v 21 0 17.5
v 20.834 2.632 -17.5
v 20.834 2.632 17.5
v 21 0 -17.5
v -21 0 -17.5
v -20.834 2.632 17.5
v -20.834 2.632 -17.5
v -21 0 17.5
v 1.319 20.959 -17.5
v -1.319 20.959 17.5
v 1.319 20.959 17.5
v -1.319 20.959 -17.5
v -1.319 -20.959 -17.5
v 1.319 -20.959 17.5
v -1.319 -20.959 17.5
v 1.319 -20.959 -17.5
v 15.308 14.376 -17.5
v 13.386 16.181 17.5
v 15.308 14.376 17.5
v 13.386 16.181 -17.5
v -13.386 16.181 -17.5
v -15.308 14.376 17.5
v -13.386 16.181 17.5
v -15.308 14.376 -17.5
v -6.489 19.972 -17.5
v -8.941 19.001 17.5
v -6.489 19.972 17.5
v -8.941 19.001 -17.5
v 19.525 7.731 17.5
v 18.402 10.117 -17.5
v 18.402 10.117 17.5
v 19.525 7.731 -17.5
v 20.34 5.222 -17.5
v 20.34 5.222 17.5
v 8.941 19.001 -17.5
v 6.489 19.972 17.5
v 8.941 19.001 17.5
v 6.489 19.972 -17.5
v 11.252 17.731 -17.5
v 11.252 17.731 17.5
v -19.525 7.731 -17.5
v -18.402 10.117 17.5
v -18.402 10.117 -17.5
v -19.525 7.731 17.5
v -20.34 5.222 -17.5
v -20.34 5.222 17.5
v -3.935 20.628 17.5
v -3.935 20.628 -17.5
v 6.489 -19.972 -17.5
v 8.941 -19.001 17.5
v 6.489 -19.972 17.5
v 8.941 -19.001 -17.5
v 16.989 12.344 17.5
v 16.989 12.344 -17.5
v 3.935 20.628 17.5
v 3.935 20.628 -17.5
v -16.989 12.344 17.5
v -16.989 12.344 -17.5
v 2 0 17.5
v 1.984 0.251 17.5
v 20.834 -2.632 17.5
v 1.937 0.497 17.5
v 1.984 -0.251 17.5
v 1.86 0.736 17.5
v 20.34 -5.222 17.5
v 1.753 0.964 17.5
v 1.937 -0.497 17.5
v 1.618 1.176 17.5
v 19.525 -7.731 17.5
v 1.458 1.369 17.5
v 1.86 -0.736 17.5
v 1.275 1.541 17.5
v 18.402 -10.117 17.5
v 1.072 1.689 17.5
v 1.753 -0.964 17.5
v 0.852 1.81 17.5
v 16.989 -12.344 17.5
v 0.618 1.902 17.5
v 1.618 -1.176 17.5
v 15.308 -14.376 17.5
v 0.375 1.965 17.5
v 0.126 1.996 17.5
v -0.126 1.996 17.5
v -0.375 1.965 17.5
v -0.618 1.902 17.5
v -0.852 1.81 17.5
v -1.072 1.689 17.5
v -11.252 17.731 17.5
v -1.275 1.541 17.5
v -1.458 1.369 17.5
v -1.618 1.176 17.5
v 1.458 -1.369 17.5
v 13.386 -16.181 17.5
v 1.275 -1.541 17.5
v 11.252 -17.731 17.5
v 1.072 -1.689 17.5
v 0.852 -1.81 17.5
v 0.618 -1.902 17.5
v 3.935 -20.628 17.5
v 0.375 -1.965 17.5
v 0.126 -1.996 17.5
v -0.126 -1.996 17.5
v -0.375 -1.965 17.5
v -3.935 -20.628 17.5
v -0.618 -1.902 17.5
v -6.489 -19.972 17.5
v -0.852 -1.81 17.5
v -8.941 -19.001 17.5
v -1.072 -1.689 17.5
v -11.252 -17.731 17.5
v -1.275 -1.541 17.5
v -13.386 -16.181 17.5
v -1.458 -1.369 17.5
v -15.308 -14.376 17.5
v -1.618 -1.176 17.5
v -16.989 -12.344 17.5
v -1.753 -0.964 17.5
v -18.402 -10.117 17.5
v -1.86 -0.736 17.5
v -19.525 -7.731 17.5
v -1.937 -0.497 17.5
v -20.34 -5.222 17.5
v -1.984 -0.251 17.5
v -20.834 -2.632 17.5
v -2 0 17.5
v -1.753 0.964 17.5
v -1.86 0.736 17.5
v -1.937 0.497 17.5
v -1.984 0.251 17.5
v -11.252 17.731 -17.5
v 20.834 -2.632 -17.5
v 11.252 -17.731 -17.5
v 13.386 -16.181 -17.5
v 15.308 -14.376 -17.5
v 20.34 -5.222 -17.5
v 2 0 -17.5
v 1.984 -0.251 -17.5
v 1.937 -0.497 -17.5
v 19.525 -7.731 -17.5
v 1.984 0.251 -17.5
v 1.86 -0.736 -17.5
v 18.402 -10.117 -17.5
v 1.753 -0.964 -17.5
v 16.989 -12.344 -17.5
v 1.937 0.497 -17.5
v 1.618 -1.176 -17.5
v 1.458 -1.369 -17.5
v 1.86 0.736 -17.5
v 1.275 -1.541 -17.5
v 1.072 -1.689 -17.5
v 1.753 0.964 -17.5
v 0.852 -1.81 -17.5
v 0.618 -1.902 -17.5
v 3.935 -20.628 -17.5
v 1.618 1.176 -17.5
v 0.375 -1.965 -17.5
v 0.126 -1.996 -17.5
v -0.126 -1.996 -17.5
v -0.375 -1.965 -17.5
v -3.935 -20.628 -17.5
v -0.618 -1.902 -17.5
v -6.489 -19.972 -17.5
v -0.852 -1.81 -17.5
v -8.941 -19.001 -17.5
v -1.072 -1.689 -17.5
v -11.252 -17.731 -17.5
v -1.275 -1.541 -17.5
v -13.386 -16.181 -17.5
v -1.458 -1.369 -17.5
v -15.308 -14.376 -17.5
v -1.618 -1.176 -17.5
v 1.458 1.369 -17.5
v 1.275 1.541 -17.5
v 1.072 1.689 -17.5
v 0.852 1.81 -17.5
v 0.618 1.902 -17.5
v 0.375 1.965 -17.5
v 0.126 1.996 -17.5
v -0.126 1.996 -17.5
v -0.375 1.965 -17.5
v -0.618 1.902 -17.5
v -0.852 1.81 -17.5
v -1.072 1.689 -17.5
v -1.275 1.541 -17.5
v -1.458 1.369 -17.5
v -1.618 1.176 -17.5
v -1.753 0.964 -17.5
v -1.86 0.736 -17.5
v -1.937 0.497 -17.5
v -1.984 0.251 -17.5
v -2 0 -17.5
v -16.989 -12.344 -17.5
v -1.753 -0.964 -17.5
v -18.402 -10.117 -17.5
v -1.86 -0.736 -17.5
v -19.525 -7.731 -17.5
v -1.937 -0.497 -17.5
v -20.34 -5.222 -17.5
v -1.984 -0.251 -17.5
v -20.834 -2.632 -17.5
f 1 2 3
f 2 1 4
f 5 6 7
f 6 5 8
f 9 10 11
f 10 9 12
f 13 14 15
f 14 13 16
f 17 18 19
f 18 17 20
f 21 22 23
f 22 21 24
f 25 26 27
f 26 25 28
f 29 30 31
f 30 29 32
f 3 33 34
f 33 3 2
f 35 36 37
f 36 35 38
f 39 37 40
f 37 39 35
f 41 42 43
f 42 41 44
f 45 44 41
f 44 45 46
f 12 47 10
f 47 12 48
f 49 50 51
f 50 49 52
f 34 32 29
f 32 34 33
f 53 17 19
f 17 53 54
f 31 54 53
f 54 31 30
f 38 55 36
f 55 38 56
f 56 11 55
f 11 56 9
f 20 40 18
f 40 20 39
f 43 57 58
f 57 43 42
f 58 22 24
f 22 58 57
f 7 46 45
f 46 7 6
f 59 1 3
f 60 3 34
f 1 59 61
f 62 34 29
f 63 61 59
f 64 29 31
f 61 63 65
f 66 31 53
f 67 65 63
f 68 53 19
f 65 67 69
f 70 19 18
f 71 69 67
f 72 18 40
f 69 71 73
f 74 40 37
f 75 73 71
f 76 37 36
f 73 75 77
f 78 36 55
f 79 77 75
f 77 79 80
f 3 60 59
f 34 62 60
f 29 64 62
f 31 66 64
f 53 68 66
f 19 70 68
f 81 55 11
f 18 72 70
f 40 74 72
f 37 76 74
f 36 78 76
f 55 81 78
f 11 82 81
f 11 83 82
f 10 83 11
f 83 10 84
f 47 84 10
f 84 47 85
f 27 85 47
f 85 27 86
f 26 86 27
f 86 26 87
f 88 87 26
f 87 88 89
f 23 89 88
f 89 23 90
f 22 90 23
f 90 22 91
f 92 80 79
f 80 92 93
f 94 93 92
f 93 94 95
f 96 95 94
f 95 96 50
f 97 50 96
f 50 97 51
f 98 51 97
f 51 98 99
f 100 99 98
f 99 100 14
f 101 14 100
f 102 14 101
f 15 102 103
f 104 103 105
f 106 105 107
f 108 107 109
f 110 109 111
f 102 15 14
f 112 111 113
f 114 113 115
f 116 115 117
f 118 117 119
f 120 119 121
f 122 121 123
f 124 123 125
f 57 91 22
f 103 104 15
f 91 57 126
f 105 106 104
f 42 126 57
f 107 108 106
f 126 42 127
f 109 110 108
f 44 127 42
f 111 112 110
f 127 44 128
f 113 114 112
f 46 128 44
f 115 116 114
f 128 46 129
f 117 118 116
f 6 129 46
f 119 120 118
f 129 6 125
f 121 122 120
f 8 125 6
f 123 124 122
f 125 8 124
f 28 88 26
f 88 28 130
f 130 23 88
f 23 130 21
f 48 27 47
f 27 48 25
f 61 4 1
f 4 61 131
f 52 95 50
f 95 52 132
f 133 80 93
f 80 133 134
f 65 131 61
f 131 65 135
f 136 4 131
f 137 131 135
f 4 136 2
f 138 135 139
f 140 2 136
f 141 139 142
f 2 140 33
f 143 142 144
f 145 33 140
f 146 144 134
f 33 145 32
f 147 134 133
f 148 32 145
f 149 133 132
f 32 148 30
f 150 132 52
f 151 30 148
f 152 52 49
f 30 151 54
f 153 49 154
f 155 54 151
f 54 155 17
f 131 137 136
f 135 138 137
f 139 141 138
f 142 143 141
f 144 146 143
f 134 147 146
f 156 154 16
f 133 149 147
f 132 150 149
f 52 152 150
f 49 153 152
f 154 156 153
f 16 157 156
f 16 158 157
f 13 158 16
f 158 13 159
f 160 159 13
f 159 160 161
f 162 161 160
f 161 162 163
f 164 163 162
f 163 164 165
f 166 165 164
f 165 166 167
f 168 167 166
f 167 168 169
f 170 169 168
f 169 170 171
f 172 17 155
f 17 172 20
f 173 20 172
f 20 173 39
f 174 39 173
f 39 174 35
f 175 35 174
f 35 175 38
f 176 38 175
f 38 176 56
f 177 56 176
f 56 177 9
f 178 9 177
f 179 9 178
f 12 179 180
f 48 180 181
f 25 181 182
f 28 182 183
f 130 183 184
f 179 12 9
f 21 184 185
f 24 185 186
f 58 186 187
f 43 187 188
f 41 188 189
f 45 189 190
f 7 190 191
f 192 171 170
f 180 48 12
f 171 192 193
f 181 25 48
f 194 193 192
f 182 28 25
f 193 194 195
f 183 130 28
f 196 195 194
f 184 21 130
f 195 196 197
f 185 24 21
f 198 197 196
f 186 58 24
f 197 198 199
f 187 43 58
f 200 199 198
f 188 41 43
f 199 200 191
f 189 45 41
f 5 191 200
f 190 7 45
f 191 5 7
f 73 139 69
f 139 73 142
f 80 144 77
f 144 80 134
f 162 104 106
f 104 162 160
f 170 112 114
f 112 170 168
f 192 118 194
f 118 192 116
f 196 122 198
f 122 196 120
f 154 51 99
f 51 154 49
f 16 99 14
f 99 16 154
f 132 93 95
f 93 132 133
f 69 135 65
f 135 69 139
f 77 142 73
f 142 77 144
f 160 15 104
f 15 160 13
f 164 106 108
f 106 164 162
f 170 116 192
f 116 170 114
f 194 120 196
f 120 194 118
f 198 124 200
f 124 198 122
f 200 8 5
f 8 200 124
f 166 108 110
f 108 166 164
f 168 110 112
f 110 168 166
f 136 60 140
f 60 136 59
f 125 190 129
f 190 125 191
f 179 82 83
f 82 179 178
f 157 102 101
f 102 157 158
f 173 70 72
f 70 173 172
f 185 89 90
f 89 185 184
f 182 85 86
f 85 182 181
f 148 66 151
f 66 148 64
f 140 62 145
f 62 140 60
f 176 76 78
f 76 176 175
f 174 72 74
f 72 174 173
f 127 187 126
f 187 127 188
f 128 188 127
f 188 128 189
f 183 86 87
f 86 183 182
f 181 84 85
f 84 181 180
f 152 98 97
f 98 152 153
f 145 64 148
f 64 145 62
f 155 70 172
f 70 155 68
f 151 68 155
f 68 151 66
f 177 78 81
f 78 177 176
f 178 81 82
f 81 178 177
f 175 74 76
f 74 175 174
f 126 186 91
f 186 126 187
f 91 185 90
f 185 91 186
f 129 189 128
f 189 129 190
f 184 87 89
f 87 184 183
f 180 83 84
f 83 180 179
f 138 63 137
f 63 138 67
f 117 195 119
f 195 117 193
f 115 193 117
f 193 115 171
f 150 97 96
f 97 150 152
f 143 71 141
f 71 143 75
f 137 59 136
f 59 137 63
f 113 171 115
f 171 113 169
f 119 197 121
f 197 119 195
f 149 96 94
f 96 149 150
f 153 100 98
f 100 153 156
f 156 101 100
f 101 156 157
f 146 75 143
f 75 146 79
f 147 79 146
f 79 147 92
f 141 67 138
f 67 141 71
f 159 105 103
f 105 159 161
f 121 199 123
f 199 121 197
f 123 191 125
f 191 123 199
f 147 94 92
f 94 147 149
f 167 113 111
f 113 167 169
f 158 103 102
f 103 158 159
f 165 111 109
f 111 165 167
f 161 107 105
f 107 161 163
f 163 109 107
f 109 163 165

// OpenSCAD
$fn = 50;


difference() {
	union() {
		translate(v = [0, 0, -17.5000000000]) {
			cylinder(h = 35, r = 21.0000000000);
		}
	}
	union() {
		translate(v = [0, 0, -100.0000000000]) {
			cylinder(h = 200, r = 2);
		}
	}
}
